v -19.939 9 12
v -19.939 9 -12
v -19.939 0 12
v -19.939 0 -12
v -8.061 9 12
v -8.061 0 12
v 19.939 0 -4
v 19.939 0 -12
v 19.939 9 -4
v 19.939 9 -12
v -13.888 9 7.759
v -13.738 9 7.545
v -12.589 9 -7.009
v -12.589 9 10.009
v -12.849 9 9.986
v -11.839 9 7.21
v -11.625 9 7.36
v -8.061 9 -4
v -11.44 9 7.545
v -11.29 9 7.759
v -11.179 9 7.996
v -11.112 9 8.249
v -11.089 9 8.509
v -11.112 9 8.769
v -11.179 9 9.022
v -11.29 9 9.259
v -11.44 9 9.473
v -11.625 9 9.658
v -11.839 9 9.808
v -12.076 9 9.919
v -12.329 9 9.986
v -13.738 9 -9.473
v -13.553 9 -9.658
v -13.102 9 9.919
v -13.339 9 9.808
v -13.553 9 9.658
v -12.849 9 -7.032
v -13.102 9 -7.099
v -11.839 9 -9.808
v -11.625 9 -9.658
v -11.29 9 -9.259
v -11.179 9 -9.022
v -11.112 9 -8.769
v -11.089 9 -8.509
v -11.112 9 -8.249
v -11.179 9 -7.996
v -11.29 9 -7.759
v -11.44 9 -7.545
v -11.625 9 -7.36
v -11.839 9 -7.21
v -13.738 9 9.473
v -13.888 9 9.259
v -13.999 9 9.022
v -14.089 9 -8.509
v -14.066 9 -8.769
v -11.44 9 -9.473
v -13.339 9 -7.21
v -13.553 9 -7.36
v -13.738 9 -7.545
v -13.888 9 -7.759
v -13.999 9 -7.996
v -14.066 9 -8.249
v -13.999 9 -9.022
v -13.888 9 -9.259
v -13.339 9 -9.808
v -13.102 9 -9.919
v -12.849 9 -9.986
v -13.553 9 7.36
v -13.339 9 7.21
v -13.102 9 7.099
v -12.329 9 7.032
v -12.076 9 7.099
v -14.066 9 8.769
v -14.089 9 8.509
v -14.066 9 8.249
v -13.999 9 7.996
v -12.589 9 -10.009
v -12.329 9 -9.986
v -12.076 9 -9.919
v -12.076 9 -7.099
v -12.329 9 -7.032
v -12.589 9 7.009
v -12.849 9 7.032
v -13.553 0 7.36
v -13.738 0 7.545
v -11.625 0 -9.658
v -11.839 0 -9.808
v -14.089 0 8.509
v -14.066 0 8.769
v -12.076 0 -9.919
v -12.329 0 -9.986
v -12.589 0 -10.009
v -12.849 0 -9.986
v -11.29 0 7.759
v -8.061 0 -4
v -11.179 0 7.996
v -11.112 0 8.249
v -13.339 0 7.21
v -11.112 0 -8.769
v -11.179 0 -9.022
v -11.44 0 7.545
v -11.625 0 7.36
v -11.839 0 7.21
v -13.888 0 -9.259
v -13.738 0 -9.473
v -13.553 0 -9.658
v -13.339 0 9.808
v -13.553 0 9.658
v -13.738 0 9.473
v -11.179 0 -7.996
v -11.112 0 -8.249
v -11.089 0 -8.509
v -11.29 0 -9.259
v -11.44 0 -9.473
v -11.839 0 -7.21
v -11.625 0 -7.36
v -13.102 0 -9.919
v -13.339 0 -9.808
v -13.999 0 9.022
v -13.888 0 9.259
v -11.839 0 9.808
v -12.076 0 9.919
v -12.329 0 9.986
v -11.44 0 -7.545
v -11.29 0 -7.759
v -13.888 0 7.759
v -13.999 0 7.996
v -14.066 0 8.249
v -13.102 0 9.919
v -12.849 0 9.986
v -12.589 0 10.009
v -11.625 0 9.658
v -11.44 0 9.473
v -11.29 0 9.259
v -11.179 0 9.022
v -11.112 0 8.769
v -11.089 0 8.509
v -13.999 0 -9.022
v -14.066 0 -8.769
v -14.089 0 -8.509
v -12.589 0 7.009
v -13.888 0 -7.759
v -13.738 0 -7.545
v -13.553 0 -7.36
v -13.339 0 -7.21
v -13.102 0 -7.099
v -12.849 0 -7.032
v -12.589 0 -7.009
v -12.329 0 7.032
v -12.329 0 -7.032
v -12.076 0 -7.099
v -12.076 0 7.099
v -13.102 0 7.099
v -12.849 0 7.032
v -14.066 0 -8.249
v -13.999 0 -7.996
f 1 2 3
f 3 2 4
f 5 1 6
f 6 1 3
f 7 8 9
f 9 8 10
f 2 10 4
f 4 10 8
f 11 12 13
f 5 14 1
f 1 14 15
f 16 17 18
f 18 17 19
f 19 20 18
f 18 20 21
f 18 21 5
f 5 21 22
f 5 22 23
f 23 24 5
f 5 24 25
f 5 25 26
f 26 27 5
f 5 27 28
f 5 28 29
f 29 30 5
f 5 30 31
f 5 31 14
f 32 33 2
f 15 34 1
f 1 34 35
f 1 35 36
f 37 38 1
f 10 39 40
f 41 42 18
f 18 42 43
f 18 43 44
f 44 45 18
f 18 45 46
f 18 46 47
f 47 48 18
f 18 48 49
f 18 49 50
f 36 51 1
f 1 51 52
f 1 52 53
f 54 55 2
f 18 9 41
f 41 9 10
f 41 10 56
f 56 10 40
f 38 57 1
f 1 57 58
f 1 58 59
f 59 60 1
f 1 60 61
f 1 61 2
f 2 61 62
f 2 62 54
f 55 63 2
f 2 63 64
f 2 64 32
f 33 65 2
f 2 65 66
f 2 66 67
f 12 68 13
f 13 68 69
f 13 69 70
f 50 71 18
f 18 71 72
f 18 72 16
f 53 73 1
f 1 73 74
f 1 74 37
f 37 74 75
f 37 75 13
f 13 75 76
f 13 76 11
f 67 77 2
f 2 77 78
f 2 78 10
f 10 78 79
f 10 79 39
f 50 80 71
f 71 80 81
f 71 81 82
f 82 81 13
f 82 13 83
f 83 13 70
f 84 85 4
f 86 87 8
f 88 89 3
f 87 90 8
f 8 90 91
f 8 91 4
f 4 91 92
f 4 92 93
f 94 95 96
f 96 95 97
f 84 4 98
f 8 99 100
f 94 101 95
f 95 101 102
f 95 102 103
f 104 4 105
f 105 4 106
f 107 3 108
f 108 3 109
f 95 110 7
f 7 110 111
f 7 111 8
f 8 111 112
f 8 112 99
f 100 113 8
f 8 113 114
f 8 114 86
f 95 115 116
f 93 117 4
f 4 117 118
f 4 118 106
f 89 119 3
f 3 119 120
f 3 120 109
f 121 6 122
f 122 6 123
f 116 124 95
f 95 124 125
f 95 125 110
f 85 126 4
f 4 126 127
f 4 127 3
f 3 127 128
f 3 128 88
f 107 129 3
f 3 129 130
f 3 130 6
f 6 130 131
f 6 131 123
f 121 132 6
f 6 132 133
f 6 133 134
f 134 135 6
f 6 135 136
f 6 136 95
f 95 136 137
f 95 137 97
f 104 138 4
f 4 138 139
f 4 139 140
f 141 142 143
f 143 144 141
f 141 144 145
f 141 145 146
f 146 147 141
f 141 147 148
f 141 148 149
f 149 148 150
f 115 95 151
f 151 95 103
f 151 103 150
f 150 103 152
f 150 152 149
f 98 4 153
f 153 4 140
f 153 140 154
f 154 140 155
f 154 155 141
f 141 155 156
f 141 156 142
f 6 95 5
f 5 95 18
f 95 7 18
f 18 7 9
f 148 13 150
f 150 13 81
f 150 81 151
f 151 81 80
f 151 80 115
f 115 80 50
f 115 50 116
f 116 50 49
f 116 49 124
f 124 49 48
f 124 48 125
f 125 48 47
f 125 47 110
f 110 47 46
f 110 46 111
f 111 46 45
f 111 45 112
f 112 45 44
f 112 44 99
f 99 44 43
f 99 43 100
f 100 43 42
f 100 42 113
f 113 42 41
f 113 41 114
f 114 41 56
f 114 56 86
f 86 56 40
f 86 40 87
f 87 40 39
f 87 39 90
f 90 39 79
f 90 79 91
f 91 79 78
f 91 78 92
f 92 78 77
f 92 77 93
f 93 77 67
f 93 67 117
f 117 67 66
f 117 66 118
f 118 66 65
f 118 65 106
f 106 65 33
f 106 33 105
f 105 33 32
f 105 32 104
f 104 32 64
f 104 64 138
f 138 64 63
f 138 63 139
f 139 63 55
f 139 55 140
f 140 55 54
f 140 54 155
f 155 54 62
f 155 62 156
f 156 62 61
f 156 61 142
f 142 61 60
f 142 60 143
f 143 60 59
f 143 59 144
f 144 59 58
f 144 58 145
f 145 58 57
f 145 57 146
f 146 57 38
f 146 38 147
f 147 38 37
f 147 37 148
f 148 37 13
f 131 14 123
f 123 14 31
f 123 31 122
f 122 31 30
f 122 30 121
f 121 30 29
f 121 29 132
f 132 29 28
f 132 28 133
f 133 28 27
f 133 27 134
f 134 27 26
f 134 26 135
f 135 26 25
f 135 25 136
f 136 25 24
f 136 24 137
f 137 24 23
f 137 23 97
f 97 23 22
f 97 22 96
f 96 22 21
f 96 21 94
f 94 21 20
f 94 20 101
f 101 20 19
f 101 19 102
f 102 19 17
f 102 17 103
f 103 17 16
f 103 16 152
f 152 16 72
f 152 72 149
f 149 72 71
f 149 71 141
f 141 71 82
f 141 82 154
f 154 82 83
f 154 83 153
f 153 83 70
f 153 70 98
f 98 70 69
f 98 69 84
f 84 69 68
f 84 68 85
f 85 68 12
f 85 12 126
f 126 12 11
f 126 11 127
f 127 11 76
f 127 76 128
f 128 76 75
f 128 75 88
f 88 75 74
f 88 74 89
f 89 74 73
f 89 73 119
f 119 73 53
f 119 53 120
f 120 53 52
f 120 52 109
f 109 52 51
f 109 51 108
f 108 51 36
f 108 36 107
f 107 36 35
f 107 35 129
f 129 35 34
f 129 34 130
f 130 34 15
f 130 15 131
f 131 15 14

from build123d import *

# Parameters (mm, degrees)
SKETCH1_W           = 39.878
SKETCH1_H           = 24
BOSS_EXTRUDE1_DEPTH = 9
SKETCH2_W           = 28
SKETCH2_H           = 16
CUT_EXTRUDE1_DEPTH  = 25.951226844
SKETCH4_R           = 1.5
CUT_EXTRUDE2_DEPTH  = 25.951226844


with BuildPart() as part:
    # Sketch1 → Boss-Extrude1 (new body)
    with BuildSketch(Plane(origin=(0, 0, 0), x_dir=(1, 0, 0), z_dir=(0, 1, 0))):
        Rectangle(SKETCH1_W, SKETCH1_H)
    extrude(amount=BOSS_EXTRUDE1_DEPTH)

    # Sketch2 → Cut-Extrude1 (cut, through all)
    with BuildSketch(Plane(origin=(0, 9, 0), x_dir=(1, 0, 0), z_dir=(0, 1, 0))):
        with Locations((5.939, -4)):
            Rectangle(SKETCH2_W, SKETCH2_H)
    extrude(amount=-CUT_EXTRUDE1_DEPTH, mode=Mode.SUBTRACT)

    # Sketch4 → Cut-Extrude2 (cut, through all)
    with BuildSketch(Plane(origin=(0, 9, 0), x_dir=(1, 0, 0), z_dir=(0, 1, 0))):
        with Locations(Location((-12.589, -8.509, 0), (0, 0, 270))):
            Circle(SKETCH4_R)
        with Locations(Location((-12.589, 8.509, 0), (0, 0, 270))):
            Circle(SKETCH4_R)
    extrude(amount=-CUT_EXTRUDE2_DEPTH, mode=Mode.SUBTRACT)


solid = part.part
